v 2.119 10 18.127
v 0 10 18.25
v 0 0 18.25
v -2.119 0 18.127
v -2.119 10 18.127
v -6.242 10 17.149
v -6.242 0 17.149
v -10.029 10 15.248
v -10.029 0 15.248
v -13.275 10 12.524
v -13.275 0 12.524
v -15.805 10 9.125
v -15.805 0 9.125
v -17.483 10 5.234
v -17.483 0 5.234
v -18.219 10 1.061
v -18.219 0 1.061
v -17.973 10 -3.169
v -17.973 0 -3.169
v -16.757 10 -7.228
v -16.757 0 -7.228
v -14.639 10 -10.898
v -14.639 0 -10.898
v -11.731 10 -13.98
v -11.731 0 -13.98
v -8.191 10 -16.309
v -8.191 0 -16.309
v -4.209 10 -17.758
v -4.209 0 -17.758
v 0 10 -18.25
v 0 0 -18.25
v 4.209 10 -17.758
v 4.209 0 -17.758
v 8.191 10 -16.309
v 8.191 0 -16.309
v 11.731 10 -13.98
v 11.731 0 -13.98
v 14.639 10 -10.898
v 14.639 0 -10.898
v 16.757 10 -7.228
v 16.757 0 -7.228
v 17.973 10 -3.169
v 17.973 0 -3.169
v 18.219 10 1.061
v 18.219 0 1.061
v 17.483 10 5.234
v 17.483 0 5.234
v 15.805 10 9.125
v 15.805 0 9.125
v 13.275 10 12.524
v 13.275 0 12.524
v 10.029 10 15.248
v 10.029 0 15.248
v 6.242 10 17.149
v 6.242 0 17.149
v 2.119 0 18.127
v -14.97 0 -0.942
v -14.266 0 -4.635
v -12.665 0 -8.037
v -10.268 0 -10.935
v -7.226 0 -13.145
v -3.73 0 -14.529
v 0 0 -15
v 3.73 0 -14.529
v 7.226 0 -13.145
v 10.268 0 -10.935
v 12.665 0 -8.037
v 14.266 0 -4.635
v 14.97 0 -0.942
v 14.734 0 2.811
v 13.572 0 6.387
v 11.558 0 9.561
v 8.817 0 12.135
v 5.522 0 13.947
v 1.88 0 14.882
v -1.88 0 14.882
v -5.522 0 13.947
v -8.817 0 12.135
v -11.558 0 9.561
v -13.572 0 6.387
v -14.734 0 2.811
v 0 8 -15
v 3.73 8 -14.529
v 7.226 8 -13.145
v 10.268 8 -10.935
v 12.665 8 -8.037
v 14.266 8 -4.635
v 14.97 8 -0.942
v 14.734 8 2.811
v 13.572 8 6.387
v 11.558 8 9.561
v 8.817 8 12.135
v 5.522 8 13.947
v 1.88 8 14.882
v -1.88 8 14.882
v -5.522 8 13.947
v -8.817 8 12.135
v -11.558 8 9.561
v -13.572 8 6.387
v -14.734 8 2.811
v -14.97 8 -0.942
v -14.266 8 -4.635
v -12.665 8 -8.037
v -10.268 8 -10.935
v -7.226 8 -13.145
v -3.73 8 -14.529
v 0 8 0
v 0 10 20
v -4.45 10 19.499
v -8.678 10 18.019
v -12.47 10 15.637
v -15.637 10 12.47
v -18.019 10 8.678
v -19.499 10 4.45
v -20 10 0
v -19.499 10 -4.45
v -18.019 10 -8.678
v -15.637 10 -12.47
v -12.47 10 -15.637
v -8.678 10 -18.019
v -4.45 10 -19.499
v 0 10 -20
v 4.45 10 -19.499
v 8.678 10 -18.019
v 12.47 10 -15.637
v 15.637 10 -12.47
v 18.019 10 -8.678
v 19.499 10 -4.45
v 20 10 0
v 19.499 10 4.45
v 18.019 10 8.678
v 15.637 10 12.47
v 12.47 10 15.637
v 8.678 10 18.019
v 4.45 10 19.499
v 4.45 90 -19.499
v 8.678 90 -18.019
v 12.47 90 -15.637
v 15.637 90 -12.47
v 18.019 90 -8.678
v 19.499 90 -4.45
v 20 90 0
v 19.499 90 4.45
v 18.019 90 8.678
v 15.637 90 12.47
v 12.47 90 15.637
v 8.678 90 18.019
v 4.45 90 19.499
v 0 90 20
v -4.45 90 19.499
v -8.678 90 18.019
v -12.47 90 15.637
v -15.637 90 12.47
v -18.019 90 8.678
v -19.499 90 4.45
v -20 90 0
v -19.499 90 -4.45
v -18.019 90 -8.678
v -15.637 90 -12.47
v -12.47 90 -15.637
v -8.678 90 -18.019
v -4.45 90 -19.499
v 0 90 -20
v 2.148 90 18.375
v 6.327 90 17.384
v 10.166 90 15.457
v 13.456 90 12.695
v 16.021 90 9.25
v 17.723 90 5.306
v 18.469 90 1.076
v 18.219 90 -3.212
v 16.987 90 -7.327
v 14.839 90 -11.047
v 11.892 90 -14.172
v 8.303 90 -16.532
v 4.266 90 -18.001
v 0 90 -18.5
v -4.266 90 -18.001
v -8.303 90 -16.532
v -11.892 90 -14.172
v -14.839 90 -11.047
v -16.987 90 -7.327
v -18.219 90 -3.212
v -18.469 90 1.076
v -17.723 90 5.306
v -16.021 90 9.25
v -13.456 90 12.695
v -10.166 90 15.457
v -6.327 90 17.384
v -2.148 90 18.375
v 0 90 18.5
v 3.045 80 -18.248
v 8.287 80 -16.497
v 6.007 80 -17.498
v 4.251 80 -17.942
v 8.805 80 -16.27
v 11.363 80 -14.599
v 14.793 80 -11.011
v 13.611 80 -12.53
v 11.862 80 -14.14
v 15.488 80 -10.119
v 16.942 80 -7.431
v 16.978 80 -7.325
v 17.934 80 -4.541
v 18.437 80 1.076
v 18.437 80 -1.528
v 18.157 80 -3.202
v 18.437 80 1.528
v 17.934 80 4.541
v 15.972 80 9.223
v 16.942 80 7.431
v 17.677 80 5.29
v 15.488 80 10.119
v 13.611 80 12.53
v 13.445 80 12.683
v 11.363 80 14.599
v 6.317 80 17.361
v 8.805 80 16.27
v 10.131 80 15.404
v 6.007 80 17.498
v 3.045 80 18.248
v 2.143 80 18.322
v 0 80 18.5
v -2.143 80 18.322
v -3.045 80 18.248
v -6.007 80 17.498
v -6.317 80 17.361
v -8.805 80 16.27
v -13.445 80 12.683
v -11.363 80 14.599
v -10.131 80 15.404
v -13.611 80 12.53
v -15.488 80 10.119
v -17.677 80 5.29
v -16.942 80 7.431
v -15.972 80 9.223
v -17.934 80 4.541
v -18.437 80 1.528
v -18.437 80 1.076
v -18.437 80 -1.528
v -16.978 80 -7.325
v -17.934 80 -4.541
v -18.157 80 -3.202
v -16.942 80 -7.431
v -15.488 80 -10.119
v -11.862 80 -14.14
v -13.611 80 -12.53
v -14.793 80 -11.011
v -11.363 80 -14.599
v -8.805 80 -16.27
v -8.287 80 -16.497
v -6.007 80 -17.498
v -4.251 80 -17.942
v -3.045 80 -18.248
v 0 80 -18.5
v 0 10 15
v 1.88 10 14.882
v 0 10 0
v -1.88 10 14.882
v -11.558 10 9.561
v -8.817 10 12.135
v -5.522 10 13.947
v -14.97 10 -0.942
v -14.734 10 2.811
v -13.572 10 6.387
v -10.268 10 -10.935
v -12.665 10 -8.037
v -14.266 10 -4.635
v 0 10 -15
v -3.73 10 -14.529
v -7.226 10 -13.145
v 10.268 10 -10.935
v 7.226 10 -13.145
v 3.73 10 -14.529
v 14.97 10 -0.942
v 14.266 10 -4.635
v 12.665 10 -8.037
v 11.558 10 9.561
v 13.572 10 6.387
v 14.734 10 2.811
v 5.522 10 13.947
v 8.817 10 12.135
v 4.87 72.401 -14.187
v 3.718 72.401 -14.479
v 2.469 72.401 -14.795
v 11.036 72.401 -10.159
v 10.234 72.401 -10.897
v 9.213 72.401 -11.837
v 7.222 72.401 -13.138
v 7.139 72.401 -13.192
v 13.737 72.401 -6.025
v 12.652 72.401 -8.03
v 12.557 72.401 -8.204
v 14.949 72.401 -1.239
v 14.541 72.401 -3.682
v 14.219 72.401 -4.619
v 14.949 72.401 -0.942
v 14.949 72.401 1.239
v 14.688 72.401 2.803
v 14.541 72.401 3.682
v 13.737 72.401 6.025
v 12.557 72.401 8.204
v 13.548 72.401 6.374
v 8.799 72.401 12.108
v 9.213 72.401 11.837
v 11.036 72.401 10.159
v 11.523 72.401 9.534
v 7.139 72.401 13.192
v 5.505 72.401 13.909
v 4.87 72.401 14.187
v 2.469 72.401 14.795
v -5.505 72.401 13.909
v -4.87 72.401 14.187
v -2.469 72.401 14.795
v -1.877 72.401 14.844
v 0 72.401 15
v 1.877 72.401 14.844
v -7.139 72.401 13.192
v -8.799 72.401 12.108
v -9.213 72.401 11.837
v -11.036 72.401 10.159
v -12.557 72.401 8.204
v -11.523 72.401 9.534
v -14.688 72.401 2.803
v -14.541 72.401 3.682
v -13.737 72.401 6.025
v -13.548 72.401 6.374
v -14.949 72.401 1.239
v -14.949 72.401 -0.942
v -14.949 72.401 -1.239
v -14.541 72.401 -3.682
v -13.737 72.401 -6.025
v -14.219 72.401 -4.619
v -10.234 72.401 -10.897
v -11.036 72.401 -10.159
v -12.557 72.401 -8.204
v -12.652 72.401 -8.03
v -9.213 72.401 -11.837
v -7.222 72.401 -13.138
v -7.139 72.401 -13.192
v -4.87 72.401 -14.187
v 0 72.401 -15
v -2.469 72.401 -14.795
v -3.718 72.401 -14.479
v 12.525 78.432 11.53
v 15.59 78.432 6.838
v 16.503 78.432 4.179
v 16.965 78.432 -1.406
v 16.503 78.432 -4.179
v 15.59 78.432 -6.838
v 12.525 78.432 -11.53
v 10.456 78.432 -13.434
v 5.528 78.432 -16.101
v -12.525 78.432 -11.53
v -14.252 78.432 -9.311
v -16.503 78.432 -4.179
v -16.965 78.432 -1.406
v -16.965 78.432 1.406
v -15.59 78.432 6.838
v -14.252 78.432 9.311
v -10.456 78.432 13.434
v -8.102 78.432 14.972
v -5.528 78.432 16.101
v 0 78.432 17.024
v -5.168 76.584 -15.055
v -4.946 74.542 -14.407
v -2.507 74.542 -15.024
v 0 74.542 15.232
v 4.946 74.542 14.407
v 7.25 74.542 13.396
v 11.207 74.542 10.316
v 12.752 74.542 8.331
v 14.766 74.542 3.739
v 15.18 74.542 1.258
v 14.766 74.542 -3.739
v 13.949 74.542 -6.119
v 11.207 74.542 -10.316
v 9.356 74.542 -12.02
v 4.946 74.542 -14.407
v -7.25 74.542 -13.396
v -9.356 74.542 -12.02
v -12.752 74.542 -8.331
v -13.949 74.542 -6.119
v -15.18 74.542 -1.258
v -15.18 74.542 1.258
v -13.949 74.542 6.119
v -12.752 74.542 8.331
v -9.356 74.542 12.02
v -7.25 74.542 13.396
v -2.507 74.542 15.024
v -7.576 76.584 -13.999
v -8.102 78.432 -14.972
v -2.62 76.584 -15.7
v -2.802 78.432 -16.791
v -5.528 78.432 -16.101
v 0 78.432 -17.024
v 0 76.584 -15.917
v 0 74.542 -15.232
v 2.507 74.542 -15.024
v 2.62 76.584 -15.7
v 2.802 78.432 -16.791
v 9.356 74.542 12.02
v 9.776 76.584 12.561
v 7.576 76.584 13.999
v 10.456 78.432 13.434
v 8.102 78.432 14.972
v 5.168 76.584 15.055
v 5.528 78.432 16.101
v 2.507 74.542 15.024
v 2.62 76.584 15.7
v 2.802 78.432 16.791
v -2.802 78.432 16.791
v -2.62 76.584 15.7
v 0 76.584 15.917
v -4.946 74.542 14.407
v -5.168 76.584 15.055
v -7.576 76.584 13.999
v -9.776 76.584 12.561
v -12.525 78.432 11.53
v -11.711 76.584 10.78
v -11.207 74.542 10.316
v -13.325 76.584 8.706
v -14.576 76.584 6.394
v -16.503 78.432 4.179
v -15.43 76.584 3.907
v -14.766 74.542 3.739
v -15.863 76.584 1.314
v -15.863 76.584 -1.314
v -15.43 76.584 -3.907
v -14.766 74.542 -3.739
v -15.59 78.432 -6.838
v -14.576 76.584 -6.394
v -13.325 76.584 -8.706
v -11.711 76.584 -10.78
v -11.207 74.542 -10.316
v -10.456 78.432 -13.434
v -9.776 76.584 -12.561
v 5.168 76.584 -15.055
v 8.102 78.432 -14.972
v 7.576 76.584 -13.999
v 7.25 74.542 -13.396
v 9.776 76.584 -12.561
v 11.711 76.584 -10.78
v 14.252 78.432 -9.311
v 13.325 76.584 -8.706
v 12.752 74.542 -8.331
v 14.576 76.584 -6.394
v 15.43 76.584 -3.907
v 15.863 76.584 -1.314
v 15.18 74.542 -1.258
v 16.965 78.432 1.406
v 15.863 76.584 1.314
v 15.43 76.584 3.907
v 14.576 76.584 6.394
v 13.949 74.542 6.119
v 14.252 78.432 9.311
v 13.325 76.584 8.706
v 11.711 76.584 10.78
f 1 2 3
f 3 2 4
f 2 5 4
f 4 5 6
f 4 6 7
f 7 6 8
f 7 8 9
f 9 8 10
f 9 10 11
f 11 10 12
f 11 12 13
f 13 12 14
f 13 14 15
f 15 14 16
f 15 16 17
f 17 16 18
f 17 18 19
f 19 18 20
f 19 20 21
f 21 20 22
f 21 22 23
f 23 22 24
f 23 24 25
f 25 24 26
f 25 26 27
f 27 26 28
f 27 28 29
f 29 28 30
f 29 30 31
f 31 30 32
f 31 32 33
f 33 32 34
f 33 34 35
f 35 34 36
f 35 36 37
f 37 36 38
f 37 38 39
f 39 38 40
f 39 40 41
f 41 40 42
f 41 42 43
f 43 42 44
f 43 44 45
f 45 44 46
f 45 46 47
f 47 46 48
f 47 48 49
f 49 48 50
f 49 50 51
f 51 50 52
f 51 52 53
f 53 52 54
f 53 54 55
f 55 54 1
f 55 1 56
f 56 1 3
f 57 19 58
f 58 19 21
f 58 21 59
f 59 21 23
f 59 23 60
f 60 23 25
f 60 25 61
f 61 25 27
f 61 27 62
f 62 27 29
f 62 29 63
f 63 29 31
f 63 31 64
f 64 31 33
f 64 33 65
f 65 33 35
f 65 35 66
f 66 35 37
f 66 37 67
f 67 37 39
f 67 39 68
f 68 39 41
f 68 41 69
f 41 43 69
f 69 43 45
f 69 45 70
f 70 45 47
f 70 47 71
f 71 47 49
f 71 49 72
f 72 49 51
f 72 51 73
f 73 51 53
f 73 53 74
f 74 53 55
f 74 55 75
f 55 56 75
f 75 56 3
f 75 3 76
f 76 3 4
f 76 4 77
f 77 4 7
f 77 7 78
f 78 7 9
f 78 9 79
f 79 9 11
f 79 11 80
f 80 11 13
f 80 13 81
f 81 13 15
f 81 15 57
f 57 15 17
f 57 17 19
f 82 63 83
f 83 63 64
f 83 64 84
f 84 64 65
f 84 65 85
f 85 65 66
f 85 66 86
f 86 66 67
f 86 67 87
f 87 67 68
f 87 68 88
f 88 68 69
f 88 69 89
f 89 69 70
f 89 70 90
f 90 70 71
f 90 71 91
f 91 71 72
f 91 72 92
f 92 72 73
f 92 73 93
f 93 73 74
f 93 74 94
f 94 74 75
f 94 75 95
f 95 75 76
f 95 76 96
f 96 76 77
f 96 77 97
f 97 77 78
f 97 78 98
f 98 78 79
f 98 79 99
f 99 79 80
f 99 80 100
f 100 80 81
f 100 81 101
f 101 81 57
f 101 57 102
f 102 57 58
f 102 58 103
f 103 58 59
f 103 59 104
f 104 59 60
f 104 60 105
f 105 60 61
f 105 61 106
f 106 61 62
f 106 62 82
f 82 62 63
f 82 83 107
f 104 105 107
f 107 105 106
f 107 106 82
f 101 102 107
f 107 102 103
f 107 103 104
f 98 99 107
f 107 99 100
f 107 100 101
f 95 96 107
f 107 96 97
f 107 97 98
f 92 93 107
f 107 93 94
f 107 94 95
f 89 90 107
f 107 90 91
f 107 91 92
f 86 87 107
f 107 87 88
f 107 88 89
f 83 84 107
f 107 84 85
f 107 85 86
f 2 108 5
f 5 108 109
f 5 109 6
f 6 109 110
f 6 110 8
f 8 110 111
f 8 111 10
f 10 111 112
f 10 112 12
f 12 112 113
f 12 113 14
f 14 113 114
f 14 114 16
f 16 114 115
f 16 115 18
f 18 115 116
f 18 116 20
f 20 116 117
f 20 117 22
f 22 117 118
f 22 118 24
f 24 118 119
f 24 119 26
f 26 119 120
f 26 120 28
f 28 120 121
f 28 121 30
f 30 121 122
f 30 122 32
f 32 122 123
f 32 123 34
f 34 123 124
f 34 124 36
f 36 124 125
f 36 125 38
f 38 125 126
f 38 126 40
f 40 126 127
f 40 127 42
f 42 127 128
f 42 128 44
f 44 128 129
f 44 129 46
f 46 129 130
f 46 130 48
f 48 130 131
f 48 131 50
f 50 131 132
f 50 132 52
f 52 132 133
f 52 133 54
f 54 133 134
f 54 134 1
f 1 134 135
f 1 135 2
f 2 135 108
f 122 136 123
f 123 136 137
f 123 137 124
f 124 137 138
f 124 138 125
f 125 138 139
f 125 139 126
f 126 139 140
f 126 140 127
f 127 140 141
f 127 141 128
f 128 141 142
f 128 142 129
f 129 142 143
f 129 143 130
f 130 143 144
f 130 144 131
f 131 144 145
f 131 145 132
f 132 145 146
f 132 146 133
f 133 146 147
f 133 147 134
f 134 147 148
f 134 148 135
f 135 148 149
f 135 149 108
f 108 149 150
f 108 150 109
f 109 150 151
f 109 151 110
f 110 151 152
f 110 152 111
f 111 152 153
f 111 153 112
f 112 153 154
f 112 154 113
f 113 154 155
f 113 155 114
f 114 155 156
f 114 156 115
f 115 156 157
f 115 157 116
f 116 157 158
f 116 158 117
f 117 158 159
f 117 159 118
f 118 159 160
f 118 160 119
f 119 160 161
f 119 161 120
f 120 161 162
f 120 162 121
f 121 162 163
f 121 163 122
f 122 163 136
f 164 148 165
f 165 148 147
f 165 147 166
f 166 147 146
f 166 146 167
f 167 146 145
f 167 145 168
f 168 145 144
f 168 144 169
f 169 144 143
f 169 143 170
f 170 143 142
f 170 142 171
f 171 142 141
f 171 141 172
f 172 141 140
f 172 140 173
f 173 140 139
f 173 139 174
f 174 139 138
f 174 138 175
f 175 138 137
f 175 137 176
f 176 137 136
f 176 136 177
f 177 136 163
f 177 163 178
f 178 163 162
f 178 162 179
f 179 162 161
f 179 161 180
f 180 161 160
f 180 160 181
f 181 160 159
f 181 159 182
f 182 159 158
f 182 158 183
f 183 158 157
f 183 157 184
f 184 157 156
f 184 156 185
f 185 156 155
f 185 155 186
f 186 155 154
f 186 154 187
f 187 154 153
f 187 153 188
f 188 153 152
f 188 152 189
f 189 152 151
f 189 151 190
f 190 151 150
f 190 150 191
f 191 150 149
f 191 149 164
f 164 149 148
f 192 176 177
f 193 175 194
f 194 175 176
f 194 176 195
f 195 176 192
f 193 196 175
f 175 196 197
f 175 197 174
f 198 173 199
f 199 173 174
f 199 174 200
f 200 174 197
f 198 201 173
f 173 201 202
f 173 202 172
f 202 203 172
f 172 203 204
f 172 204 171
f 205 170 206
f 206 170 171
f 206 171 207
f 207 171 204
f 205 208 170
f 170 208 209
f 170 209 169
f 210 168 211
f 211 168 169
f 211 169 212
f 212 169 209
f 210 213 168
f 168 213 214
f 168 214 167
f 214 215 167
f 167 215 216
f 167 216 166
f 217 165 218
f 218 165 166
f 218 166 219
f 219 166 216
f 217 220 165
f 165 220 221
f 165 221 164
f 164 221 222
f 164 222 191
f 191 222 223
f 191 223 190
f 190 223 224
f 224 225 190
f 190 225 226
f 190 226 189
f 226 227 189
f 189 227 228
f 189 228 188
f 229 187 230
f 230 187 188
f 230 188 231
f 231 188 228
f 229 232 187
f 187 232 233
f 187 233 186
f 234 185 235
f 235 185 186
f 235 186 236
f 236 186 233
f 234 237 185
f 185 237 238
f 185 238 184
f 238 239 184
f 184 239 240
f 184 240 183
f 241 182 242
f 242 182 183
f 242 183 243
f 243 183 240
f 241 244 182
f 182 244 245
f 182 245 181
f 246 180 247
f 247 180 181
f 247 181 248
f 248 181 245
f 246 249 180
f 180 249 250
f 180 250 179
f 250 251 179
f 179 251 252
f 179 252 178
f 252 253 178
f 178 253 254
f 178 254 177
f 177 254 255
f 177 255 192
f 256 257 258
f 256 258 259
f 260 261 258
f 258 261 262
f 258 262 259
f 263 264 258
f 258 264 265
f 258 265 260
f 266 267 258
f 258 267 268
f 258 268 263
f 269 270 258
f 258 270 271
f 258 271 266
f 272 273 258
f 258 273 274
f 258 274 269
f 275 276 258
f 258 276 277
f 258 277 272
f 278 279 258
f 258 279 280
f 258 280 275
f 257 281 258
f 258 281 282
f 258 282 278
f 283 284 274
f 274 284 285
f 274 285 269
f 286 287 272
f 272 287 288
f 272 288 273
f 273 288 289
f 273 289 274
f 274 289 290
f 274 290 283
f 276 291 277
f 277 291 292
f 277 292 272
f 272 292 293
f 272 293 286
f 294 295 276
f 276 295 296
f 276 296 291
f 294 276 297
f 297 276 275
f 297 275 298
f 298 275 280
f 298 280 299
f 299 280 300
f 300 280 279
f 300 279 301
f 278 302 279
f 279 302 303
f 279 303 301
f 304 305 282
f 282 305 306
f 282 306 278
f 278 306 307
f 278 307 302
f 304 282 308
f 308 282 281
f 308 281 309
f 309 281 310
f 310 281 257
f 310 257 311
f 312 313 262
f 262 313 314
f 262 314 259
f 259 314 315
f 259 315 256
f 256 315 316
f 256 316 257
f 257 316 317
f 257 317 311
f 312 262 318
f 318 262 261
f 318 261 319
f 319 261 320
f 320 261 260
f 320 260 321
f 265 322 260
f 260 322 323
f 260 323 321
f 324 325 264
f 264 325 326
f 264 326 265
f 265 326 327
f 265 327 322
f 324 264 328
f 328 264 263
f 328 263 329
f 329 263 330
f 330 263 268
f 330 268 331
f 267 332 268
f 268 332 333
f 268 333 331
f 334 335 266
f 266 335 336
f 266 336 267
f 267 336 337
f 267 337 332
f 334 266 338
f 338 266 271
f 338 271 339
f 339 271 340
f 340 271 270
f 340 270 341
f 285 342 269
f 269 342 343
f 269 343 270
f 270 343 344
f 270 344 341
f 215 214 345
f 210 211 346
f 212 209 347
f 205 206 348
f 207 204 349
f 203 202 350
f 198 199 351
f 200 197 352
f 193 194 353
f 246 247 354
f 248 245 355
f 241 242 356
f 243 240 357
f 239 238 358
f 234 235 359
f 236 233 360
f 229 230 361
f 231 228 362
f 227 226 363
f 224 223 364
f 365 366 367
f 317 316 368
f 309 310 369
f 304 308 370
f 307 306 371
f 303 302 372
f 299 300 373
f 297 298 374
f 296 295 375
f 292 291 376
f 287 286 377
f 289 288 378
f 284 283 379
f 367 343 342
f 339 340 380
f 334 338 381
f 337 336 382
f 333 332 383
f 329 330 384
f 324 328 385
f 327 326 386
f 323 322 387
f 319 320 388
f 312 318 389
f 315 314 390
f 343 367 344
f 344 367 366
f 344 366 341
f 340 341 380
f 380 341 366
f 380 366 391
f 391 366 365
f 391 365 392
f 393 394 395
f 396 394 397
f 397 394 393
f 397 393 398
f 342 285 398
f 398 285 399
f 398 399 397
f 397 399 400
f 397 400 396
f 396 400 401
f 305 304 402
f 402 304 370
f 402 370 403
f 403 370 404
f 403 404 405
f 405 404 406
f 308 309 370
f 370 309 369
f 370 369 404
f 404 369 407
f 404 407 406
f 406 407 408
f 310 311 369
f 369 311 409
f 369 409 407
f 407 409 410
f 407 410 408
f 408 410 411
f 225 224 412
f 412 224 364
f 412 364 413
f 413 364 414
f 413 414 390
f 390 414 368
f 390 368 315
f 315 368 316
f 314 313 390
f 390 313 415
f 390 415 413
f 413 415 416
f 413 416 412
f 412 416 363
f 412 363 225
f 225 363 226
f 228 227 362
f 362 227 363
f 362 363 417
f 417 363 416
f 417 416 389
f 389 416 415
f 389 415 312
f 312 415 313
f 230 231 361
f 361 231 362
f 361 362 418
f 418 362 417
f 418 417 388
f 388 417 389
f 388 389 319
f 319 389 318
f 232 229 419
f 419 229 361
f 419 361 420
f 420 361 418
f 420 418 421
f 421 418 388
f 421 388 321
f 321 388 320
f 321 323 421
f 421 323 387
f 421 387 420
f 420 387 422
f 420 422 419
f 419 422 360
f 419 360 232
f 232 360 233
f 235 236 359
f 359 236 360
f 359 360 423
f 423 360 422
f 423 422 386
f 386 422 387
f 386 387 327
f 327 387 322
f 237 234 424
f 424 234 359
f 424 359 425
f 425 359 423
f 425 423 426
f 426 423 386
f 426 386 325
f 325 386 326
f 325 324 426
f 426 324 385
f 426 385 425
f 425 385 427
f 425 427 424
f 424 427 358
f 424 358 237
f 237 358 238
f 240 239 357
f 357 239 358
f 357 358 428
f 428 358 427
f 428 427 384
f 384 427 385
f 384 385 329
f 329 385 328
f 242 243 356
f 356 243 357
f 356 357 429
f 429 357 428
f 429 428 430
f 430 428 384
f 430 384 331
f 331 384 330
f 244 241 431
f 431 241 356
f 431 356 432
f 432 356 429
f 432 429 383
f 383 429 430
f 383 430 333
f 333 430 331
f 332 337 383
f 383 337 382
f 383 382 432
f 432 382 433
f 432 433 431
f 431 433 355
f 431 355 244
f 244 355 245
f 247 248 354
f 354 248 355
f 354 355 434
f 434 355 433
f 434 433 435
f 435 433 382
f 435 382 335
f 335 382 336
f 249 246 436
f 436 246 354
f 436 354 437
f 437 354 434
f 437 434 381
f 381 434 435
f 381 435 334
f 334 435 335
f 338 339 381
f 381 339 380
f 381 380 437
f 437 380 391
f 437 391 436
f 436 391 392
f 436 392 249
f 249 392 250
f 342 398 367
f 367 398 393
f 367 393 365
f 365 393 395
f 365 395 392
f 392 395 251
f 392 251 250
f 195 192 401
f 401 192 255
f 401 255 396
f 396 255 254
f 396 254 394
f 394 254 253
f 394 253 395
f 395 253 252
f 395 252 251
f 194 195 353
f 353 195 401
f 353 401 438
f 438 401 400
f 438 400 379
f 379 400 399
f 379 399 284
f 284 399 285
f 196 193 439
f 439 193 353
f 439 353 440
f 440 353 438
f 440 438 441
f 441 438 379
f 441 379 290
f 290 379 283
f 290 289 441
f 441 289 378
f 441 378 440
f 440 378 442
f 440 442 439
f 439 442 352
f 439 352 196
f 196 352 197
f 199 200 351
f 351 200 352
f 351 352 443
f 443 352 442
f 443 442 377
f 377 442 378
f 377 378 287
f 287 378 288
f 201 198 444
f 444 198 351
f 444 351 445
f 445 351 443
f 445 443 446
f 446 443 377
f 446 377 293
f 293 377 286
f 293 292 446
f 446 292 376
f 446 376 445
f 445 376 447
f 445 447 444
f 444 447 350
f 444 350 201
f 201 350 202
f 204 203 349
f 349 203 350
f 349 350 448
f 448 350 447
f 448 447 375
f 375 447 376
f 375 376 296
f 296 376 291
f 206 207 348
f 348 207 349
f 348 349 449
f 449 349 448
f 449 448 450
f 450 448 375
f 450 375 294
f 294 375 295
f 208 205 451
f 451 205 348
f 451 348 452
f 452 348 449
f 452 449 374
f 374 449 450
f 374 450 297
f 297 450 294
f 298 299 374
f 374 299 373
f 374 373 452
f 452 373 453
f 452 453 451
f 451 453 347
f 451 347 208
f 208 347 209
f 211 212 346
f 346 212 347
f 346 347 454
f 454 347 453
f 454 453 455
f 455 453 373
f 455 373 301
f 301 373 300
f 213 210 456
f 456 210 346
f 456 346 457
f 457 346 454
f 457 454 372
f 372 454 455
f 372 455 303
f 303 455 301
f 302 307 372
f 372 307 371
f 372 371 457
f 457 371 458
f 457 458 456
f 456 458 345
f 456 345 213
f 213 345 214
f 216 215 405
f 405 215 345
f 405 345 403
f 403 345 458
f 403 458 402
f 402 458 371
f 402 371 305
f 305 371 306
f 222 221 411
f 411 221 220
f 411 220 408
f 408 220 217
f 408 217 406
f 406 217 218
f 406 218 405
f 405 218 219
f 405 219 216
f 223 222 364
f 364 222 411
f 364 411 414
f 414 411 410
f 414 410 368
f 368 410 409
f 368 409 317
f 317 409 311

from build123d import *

# Parameters (mm, degrees)
SKETCH_1_R          = 18.25
EXTRUDE_1_DEPTH     = 10
SKETCH_3_R          = 15
CUT_EXTRUDE_1_DEPTH = 8
SKETCH_4_R          = 20
SKETCH_4_R_2        = 15
EXTRUDE_2_DEPTH     = 70
SKETCH_5_R          = 20
SKETCH_5_R_2        = 18.5
EXTRUDE_3_DEPTH     = 10
FILLET_1_R          = 10


with BuildPart() as part:
    # 草图1 → 凸台-拉伸1 (new body)
    with BuildSketch(Plane(origin=(0, 0, 0), x_dir=(1, 0, 0), z_dir=(0, 1, 0))):
        with Locations(Location((0, 0, 0), (0, 0, 270))):
            Circle(SKETCH_1_R)
    extrude(amount=EXTRUDE_1_DEPTH)

    # 草图3 → 切除-拉伸1 (cut)
    with BuildSketch(Plane.XZ):
        with Locations(Location((0, 0, 0), (0, 0, 270))):
            Circle(SKETCH_3_R)
    extrude(amount=-CUT_EXTRUDE_1_DEPTH, mode=Mode.SUBTRACT)

    # 草图4 → 凸台-拉伸2 (add)
    with BuildSketch(Plane(origin=(0, 10, 0), x_dir=(1, 0, 0), z_dir=(0, 1, 0))):
        with Locations(Location((0, 0, 0), (0, 0, 270))):
            Circle(SKETCH_4_R)
        with Locations(Location((0, 0, 0), (0, 0, 90))):
            Circle(SKETCH_4_R_2, mode=Mode.SUBTRACT)
    extrude(amount=EXTRUDE_2_DEPTH)

    # 草图5 → 凸台-拉伸3 (add)
    with BuildSketch(Plane(origin=(0, 80, 0), x_dir=(1, 0, 0), z_dir=(0, 1, 0))):
        with Locations(Location((0, 0, 0), (0, 0, 270))):
            Circle(SKETCH_5_R)
        with Locations(Location((0, 0, 0), (0, 0, 270))):
            Circle(SKETCH_5_R_2, mode=Mode.SUBTRACT)
    extrude(amount=EXTRUDE_3_DEPTH)

    # 圆角1
    # the kernel refuses this fillet: 10 mm, written as the material it takes off along each edge
    with BuildSketch(Plane(origin=(0, 80, 0), x_dir=(0, 0, -1), z_dir=(1, 0, 0))) as fillet_1_piece_1:
        with BuildLine():
            CenterArc((25, -7.599342077), FILLET_1_R, 130.541601874, 49.458398126)
            Line((15, -7.599342077), (14.8, -7.599342077))
            Line((14.8, -7.599342077), (14.8, 0))
            Line((14.8, 0), (15, 0.2))
            ThreePointArc((15, 0.2), (16.75, 0.2), (18.37, 0.151986842))
            Line((18.37, 0.151986842), (18.5, 0))
        make_face()
    revolve(axis=Axis((0, 80, 0), (0, 1, 0)), mode=Mode.SUBTRACT)


solid = part.part
